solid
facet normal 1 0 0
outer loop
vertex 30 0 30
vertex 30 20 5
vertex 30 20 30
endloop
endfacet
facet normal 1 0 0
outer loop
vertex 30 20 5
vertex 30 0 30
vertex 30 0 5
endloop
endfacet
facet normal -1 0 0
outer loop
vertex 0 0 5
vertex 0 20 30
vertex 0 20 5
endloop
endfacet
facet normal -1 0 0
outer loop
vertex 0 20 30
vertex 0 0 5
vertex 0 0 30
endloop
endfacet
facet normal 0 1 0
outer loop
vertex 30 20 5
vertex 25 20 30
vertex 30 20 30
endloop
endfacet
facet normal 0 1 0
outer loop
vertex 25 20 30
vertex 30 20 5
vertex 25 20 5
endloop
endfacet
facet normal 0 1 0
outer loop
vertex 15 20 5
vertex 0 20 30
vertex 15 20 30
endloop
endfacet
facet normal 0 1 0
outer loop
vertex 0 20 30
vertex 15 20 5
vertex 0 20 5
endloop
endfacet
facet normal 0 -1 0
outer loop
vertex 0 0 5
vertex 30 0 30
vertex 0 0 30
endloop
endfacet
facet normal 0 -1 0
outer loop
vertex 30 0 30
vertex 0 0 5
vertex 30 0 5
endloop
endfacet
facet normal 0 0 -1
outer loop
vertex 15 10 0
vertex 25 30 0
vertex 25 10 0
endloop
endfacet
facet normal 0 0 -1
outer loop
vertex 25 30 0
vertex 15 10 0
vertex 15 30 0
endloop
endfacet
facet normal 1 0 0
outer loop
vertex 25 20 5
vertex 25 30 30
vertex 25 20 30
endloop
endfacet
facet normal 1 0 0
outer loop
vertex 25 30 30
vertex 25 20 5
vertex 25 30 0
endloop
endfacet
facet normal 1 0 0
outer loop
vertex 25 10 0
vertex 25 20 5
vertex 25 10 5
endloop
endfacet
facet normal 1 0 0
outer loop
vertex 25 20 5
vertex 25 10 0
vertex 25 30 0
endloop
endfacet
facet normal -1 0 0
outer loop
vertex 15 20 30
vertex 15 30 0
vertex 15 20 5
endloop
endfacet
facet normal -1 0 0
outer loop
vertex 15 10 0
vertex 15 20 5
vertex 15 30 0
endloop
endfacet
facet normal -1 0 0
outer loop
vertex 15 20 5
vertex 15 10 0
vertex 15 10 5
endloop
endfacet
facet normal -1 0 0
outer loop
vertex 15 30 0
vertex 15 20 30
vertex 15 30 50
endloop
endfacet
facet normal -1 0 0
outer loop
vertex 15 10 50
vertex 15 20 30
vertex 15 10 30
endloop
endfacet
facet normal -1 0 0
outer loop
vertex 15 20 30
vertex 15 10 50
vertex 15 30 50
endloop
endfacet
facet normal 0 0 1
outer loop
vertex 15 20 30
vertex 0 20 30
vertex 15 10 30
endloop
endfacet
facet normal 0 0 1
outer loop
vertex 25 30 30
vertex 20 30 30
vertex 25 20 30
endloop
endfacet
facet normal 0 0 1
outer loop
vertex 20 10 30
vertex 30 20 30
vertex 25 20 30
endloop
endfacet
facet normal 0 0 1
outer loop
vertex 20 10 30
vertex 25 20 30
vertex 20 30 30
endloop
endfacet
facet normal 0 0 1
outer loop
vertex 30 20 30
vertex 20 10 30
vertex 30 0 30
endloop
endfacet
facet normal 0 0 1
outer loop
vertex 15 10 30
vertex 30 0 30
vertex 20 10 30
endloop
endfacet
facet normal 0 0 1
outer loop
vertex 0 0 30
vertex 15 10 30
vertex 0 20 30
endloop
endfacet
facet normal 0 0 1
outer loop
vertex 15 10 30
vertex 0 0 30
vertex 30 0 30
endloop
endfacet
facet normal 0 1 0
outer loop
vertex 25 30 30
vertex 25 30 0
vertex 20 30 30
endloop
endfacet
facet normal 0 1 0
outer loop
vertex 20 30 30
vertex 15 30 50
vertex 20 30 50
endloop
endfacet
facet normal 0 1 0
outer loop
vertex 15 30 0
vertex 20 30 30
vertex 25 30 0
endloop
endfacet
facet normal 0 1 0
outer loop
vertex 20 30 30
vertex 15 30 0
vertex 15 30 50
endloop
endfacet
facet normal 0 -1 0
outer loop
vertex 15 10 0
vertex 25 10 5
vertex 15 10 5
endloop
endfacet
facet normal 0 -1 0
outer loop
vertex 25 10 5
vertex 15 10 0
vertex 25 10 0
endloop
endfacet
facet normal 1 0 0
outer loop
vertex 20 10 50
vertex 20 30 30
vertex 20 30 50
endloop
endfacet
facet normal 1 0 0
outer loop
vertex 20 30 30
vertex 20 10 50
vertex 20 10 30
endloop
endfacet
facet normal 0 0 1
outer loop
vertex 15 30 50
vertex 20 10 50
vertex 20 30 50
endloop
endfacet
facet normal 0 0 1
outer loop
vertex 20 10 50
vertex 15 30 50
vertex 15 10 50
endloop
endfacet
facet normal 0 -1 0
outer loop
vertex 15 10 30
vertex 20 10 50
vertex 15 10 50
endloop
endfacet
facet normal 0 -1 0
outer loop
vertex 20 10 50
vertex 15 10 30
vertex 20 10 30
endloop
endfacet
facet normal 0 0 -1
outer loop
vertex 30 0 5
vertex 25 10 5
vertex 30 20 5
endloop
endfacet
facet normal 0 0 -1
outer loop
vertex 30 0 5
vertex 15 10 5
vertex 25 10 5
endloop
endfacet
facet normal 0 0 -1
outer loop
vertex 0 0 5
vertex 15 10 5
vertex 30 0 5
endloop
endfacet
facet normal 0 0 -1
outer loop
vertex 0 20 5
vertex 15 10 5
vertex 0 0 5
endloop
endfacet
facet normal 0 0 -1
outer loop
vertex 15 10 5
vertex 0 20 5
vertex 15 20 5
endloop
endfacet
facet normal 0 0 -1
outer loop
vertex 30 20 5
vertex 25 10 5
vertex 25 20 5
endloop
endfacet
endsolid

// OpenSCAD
// Create the base of the case
translate([0, 0, 5]) {
  cube([30, 20, 10]);
}


// Create the sides of the case
translate([0, 0, 15]) {
  cube([30, 20, 10]);
  translate([15, 10, 15]) {
    rotate([0, 90, 0]) {
      cube([30, 20, 10]);
    }
  }
}

// Create the lid of the case
translate([0, 0, 25]) {
  cube([30, 20, 5]);
  translate([15, 10, 25]) {
    rotate([0, 90, 0]) {
      cube([30, 20, 5]);
    }
  }
}

// Create the opening for the ESP8266
translate([15, 10, 30]) {
  rotate([0, 90, 0]) {
    cube([20, 15, 5]);
  }
}
